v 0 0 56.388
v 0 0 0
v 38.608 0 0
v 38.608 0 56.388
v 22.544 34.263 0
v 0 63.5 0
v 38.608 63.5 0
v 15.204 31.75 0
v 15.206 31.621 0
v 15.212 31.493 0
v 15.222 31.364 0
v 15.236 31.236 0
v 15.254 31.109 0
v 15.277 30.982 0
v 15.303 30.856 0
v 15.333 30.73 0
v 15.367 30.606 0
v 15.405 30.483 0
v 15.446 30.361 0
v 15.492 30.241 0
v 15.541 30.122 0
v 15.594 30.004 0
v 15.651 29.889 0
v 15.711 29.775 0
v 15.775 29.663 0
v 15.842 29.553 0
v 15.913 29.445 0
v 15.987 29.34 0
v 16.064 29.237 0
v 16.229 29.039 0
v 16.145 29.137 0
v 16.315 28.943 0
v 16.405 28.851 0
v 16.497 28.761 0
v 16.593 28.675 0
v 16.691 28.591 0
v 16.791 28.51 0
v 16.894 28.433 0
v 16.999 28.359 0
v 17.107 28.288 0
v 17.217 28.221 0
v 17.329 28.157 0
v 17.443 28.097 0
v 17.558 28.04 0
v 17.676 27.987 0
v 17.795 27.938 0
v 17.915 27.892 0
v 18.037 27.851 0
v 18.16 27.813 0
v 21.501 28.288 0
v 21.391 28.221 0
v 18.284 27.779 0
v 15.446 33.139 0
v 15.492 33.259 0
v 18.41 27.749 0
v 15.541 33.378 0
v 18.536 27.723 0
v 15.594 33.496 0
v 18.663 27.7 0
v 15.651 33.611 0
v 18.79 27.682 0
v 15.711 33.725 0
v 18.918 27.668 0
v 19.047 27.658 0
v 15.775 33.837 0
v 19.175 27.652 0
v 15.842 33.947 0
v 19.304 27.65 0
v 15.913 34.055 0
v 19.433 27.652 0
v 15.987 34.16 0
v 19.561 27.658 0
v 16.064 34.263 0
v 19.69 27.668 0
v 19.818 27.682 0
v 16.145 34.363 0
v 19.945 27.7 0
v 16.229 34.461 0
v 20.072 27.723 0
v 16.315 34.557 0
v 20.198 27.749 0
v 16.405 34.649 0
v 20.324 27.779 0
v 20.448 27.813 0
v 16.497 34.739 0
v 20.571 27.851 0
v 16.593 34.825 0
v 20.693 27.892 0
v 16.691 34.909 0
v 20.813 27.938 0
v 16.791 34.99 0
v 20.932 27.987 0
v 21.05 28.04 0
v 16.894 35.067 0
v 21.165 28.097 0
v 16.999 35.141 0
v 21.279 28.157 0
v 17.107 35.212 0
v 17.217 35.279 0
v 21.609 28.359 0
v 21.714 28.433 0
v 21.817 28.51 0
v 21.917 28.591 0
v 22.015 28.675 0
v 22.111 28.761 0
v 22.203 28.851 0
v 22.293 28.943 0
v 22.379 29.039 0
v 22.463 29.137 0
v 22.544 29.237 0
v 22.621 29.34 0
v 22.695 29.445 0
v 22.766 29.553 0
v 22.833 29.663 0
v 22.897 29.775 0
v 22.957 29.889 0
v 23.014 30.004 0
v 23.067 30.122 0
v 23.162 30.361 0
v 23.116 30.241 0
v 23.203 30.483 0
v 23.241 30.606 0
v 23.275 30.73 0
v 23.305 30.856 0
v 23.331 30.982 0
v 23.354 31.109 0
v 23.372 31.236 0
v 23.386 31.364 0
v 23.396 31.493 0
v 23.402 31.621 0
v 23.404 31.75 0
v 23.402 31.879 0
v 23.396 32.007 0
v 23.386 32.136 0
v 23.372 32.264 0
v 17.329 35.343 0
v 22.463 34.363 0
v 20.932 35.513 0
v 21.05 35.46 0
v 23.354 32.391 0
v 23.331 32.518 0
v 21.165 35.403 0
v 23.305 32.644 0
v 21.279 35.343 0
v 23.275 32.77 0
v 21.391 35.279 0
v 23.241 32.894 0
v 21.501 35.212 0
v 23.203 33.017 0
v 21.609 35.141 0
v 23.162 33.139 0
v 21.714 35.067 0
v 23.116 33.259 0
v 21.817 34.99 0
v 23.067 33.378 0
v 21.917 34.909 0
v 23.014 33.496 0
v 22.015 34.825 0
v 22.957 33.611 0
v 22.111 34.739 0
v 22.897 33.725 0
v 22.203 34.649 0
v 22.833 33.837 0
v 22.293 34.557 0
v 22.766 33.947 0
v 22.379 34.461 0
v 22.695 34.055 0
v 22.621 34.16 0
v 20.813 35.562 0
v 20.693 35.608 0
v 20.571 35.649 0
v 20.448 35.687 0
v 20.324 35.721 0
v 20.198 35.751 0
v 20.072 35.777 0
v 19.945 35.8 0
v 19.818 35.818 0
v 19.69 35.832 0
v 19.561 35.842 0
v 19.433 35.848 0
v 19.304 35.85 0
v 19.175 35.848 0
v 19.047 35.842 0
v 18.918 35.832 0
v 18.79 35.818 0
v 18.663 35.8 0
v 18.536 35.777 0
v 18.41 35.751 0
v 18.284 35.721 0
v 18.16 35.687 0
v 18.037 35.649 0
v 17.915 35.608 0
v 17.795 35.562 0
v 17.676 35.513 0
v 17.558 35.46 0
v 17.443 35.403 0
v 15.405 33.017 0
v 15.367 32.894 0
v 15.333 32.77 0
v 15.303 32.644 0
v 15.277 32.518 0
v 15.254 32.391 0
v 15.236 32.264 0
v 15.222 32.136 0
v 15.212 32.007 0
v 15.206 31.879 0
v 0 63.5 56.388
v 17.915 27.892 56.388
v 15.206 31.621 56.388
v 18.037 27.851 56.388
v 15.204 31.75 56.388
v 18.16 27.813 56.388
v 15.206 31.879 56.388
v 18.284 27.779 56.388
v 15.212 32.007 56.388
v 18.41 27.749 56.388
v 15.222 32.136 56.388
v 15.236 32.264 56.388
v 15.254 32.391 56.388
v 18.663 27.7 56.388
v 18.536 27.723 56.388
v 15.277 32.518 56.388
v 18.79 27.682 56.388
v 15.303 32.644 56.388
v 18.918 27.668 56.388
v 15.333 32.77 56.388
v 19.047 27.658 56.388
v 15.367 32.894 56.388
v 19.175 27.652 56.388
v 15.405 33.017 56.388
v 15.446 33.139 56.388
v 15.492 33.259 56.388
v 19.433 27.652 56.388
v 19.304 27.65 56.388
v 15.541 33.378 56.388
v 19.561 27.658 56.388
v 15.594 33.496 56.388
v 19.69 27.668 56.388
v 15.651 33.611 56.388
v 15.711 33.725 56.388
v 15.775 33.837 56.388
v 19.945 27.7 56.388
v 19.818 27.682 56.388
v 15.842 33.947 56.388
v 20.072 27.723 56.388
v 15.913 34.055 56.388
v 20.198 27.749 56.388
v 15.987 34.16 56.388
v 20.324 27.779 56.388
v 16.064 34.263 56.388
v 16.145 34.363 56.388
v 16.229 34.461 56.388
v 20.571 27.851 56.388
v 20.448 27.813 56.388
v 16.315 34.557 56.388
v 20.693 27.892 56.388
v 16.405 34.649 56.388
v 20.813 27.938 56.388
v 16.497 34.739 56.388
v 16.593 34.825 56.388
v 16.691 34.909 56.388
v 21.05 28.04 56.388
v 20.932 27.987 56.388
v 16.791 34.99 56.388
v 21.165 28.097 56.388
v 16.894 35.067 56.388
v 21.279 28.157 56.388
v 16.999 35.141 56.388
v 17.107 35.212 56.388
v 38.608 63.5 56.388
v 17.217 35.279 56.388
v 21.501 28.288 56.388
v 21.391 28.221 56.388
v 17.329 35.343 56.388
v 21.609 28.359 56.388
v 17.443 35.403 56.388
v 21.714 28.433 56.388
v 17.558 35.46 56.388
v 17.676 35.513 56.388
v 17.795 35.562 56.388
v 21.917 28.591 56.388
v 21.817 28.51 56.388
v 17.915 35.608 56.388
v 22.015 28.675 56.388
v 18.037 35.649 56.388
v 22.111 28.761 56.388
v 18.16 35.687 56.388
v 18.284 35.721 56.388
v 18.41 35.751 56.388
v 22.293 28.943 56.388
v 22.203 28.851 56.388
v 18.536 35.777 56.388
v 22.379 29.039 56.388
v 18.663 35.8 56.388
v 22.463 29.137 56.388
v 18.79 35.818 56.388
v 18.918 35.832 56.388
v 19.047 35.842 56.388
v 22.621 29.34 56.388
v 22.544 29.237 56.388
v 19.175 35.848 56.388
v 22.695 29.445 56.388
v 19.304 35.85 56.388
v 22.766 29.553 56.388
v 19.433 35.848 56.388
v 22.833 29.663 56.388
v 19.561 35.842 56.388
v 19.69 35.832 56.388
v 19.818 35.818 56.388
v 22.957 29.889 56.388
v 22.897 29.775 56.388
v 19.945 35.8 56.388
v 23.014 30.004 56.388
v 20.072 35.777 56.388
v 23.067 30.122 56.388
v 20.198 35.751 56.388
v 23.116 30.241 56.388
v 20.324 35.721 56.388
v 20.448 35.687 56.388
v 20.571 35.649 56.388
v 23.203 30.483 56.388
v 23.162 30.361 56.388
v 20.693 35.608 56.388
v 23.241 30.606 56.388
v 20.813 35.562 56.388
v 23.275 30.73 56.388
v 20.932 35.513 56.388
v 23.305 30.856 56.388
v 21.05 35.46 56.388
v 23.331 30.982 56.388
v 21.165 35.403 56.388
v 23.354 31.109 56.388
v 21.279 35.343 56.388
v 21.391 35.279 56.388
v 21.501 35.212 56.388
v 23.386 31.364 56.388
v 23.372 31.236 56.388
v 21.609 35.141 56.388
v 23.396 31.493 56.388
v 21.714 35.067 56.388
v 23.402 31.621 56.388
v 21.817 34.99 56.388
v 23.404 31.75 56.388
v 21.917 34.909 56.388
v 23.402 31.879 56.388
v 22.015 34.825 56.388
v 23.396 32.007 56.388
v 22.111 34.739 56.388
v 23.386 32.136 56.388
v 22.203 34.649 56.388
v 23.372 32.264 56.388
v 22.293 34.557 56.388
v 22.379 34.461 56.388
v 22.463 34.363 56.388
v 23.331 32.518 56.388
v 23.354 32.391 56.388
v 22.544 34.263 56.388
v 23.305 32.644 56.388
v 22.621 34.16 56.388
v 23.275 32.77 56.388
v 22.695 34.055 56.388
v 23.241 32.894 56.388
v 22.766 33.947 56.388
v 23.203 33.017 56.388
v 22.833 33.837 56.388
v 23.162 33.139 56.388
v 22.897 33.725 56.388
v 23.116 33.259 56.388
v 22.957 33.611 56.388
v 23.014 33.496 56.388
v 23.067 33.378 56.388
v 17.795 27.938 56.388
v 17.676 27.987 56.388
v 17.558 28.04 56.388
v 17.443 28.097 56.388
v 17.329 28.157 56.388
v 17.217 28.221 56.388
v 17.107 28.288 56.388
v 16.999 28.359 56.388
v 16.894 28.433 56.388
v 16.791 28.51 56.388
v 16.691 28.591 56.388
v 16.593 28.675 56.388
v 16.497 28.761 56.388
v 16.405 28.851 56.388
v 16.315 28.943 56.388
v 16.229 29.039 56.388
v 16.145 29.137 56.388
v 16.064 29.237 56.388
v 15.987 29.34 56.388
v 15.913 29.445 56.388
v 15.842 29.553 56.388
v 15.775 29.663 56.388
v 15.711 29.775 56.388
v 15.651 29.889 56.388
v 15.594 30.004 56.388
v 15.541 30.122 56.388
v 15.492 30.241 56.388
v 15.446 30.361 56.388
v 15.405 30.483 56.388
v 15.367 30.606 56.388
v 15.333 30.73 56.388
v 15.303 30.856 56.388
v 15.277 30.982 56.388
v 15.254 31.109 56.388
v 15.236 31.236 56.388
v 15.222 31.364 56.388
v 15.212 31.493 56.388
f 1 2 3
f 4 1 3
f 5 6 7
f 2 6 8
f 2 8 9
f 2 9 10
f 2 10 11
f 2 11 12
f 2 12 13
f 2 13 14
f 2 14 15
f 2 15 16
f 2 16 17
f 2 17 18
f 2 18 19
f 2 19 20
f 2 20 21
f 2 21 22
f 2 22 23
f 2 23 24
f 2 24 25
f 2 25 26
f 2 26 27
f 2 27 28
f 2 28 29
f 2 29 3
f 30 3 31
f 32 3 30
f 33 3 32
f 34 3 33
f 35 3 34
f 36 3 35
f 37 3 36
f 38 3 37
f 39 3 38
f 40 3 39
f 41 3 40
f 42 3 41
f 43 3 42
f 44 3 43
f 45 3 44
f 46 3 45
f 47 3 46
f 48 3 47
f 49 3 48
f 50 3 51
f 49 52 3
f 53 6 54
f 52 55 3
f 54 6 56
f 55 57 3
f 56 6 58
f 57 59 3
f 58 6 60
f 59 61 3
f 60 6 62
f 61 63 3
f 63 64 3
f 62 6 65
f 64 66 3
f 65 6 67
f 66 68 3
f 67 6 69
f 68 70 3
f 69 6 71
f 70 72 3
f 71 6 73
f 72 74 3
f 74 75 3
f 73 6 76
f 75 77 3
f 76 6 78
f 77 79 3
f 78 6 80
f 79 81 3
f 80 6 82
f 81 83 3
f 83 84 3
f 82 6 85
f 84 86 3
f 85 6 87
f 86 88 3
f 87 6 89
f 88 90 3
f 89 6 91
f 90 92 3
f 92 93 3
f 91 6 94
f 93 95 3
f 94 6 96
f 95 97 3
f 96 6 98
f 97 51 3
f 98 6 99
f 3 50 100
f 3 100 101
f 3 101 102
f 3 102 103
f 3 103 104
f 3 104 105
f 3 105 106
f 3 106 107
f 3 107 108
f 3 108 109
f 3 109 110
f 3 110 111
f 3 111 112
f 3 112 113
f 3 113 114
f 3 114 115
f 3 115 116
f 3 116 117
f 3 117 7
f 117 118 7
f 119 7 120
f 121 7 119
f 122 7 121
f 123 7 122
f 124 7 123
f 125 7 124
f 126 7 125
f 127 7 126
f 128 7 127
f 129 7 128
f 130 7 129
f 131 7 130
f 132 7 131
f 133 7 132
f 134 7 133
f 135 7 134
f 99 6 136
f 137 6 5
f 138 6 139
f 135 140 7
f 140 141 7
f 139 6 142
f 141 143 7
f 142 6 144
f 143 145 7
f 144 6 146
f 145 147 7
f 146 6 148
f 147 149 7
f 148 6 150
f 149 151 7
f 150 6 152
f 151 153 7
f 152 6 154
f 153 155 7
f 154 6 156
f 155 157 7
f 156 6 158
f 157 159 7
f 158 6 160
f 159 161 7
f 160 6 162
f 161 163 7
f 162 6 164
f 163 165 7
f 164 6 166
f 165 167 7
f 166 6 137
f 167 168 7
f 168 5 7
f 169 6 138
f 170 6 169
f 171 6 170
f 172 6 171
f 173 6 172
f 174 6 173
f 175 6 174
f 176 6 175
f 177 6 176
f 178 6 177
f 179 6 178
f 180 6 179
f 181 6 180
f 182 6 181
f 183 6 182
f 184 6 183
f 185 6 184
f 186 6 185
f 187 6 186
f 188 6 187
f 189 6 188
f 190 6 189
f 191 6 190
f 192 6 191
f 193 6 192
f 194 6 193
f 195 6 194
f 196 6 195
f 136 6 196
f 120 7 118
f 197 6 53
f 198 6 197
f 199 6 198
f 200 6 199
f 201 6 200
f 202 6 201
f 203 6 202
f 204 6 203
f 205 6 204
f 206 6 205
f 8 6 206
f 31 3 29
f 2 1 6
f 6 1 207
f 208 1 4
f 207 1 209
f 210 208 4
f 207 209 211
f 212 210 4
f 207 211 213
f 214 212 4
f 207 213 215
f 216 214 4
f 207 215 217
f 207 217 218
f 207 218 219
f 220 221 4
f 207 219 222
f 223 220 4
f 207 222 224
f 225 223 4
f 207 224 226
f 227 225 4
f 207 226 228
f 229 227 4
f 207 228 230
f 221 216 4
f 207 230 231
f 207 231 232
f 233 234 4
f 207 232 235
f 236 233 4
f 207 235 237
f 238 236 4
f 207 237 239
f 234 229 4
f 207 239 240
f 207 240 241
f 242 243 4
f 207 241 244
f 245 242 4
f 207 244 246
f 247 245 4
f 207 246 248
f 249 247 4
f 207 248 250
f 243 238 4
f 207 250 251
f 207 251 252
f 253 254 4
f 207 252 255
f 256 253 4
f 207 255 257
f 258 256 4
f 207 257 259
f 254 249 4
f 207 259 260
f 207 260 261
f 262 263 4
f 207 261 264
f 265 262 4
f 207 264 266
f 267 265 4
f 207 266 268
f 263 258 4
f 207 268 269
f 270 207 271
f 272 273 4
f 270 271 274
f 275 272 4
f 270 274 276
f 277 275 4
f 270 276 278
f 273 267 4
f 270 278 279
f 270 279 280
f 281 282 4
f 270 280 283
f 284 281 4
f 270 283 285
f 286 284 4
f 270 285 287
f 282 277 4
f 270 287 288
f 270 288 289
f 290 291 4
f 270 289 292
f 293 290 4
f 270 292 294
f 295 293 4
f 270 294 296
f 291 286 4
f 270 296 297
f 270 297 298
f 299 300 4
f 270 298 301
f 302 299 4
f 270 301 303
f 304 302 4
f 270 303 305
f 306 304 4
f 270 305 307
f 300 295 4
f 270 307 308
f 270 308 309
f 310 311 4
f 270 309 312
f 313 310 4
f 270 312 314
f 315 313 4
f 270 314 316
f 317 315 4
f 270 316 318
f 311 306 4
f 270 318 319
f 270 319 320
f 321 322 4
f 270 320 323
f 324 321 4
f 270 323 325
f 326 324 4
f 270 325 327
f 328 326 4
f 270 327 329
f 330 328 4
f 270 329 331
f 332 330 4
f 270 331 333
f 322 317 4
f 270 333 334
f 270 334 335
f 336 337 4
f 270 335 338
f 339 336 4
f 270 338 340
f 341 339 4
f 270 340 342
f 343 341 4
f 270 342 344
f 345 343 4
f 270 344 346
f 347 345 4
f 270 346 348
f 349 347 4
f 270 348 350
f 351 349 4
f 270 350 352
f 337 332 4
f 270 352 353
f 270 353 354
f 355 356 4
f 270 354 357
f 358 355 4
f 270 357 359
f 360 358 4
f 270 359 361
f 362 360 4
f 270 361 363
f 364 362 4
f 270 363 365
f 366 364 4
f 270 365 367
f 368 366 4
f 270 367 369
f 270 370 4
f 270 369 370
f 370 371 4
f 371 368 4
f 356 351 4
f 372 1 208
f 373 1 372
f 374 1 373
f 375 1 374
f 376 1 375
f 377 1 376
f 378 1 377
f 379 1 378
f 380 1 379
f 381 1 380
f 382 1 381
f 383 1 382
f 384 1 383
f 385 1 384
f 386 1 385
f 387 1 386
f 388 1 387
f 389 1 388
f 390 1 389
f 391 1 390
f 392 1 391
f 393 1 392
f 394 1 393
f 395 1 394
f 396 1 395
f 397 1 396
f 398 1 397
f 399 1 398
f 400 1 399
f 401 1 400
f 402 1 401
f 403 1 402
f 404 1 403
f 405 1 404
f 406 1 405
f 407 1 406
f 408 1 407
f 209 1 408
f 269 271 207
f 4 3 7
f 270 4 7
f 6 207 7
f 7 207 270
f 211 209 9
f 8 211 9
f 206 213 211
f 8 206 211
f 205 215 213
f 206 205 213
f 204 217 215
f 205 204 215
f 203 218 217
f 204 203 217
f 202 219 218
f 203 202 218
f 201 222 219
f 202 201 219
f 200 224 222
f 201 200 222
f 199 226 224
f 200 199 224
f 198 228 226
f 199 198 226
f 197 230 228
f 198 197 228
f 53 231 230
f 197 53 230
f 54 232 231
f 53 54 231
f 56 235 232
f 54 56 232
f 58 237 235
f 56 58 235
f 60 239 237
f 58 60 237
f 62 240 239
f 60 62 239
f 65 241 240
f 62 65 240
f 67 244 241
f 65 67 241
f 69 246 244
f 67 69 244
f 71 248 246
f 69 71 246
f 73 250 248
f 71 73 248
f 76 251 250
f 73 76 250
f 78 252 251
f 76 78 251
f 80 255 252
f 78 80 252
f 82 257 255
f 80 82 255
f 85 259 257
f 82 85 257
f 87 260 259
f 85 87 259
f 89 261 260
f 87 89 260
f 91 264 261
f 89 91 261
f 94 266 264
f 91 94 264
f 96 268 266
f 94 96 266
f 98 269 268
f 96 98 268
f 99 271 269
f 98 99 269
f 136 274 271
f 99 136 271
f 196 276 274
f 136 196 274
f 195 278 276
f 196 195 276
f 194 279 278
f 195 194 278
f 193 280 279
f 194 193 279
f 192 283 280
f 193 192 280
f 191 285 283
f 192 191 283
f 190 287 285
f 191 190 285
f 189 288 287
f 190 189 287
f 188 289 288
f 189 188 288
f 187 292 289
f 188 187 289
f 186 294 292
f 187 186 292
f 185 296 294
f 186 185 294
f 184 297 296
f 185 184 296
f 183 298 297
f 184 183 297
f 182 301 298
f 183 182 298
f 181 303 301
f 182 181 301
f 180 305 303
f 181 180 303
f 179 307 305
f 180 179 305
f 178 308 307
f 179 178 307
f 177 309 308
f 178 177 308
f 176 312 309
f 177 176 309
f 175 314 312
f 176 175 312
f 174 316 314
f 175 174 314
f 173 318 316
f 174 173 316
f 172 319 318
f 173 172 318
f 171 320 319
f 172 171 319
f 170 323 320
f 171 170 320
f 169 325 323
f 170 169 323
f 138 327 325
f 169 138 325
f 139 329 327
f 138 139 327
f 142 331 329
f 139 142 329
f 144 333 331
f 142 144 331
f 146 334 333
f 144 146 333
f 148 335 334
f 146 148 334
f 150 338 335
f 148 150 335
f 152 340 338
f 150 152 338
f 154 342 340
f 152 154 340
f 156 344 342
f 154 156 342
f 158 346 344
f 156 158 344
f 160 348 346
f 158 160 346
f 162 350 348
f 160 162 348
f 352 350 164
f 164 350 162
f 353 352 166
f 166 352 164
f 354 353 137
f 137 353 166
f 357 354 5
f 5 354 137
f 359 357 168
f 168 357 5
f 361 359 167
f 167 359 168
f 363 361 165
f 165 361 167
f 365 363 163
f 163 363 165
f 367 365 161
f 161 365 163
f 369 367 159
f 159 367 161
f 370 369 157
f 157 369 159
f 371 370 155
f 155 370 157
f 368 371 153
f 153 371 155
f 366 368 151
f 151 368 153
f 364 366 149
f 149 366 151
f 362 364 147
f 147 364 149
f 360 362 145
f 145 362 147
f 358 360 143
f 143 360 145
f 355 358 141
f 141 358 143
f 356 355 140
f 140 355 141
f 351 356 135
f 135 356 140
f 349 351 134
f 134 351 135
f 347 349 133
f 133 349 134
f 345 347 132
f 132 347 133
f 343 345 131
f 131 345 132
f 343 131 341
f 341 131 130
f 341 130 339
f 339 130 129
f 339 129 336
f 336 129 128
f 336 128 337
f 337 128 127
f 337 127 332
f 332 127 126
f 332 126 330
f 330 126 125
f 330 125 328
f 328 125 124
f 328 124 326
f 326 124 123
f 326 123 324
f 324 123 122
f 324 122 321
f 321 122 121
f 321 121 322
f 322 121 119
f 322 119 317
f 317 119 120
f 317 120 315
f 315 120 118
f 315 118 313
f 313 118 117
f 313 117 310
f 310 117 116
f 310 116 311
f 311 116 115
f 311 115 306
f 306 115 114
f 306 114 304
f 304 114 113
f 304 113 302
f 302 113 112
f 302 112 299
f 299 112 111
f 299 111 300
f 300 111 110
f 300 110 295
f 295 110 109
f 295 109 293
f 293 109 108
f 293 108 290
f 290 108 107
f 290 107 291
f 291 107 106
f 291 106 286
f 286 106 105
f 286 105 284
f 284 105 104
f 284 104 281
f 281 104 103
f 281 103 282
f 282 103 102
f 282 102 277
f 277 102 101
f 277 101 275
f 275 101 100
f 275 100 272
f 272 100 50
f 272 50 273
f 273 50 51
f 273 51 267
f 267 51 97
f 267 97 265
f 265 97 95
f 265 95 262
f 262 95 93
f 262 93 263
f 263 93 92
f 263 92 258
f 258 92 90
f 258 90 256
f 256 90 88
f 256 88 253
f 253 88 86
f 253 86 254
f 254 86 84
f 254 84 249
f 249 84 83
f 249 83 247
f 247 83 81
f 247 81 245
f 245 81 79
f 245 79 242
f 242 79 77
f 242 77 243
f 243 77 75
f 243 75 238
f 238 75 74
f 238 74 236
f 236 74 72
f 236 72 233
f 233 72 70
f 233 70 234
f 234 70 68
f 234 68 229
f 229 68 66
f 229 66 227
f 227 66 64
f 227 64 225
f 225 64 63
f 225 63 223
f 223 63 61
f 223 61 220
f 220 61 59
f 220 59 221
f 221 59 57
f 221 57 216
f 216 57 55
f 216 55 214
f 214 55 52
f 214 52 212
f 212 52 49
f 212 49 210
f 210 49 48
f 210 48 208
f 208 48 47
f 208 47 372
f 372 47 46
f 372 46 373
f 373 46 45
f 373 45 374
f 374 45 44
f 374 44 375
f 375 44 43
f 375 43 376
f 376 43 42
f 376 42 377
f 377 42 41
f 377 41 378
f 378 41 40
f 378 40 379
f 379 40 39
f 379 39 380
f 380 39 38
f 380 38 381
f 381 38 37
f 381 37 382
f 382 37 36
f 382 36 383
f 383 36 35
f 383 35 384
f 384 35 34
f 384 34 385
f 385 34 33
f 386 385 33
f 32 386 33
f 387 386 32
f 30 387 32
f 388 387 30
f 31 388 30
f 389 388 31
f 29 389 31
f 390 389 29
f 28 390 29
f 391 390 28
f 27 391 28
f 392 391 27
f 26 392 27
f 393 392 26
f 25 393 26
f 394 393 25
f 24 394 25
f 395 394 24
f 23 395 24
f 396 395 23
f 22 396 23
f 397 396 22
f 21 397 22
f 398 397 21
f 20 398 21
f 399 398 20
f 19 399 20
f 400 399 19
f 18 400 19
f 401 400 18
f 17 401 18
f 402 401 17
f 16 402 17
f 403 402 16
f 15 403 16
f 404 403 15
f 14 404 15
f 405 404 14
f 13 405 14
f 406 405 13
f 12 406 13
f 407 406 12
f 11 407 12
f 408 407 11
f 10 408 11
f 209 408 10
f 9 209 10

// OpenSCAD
width = 25.4 * 1.52;
depth = 25.4 * 2.5;
height = 2.22 * 25.4;
bolt = 8.2;

#difference()
{
linear_extrude(height = height )
{
	polygon(points=[[0, 0],[width, 0],[width, depth], [0, depth]]);

}

linear_extrude(height = height)
{
	translate([width/2, depth/2,0])
	{
		circle($fn = 200, r = bolt/2);
	}
}
}
